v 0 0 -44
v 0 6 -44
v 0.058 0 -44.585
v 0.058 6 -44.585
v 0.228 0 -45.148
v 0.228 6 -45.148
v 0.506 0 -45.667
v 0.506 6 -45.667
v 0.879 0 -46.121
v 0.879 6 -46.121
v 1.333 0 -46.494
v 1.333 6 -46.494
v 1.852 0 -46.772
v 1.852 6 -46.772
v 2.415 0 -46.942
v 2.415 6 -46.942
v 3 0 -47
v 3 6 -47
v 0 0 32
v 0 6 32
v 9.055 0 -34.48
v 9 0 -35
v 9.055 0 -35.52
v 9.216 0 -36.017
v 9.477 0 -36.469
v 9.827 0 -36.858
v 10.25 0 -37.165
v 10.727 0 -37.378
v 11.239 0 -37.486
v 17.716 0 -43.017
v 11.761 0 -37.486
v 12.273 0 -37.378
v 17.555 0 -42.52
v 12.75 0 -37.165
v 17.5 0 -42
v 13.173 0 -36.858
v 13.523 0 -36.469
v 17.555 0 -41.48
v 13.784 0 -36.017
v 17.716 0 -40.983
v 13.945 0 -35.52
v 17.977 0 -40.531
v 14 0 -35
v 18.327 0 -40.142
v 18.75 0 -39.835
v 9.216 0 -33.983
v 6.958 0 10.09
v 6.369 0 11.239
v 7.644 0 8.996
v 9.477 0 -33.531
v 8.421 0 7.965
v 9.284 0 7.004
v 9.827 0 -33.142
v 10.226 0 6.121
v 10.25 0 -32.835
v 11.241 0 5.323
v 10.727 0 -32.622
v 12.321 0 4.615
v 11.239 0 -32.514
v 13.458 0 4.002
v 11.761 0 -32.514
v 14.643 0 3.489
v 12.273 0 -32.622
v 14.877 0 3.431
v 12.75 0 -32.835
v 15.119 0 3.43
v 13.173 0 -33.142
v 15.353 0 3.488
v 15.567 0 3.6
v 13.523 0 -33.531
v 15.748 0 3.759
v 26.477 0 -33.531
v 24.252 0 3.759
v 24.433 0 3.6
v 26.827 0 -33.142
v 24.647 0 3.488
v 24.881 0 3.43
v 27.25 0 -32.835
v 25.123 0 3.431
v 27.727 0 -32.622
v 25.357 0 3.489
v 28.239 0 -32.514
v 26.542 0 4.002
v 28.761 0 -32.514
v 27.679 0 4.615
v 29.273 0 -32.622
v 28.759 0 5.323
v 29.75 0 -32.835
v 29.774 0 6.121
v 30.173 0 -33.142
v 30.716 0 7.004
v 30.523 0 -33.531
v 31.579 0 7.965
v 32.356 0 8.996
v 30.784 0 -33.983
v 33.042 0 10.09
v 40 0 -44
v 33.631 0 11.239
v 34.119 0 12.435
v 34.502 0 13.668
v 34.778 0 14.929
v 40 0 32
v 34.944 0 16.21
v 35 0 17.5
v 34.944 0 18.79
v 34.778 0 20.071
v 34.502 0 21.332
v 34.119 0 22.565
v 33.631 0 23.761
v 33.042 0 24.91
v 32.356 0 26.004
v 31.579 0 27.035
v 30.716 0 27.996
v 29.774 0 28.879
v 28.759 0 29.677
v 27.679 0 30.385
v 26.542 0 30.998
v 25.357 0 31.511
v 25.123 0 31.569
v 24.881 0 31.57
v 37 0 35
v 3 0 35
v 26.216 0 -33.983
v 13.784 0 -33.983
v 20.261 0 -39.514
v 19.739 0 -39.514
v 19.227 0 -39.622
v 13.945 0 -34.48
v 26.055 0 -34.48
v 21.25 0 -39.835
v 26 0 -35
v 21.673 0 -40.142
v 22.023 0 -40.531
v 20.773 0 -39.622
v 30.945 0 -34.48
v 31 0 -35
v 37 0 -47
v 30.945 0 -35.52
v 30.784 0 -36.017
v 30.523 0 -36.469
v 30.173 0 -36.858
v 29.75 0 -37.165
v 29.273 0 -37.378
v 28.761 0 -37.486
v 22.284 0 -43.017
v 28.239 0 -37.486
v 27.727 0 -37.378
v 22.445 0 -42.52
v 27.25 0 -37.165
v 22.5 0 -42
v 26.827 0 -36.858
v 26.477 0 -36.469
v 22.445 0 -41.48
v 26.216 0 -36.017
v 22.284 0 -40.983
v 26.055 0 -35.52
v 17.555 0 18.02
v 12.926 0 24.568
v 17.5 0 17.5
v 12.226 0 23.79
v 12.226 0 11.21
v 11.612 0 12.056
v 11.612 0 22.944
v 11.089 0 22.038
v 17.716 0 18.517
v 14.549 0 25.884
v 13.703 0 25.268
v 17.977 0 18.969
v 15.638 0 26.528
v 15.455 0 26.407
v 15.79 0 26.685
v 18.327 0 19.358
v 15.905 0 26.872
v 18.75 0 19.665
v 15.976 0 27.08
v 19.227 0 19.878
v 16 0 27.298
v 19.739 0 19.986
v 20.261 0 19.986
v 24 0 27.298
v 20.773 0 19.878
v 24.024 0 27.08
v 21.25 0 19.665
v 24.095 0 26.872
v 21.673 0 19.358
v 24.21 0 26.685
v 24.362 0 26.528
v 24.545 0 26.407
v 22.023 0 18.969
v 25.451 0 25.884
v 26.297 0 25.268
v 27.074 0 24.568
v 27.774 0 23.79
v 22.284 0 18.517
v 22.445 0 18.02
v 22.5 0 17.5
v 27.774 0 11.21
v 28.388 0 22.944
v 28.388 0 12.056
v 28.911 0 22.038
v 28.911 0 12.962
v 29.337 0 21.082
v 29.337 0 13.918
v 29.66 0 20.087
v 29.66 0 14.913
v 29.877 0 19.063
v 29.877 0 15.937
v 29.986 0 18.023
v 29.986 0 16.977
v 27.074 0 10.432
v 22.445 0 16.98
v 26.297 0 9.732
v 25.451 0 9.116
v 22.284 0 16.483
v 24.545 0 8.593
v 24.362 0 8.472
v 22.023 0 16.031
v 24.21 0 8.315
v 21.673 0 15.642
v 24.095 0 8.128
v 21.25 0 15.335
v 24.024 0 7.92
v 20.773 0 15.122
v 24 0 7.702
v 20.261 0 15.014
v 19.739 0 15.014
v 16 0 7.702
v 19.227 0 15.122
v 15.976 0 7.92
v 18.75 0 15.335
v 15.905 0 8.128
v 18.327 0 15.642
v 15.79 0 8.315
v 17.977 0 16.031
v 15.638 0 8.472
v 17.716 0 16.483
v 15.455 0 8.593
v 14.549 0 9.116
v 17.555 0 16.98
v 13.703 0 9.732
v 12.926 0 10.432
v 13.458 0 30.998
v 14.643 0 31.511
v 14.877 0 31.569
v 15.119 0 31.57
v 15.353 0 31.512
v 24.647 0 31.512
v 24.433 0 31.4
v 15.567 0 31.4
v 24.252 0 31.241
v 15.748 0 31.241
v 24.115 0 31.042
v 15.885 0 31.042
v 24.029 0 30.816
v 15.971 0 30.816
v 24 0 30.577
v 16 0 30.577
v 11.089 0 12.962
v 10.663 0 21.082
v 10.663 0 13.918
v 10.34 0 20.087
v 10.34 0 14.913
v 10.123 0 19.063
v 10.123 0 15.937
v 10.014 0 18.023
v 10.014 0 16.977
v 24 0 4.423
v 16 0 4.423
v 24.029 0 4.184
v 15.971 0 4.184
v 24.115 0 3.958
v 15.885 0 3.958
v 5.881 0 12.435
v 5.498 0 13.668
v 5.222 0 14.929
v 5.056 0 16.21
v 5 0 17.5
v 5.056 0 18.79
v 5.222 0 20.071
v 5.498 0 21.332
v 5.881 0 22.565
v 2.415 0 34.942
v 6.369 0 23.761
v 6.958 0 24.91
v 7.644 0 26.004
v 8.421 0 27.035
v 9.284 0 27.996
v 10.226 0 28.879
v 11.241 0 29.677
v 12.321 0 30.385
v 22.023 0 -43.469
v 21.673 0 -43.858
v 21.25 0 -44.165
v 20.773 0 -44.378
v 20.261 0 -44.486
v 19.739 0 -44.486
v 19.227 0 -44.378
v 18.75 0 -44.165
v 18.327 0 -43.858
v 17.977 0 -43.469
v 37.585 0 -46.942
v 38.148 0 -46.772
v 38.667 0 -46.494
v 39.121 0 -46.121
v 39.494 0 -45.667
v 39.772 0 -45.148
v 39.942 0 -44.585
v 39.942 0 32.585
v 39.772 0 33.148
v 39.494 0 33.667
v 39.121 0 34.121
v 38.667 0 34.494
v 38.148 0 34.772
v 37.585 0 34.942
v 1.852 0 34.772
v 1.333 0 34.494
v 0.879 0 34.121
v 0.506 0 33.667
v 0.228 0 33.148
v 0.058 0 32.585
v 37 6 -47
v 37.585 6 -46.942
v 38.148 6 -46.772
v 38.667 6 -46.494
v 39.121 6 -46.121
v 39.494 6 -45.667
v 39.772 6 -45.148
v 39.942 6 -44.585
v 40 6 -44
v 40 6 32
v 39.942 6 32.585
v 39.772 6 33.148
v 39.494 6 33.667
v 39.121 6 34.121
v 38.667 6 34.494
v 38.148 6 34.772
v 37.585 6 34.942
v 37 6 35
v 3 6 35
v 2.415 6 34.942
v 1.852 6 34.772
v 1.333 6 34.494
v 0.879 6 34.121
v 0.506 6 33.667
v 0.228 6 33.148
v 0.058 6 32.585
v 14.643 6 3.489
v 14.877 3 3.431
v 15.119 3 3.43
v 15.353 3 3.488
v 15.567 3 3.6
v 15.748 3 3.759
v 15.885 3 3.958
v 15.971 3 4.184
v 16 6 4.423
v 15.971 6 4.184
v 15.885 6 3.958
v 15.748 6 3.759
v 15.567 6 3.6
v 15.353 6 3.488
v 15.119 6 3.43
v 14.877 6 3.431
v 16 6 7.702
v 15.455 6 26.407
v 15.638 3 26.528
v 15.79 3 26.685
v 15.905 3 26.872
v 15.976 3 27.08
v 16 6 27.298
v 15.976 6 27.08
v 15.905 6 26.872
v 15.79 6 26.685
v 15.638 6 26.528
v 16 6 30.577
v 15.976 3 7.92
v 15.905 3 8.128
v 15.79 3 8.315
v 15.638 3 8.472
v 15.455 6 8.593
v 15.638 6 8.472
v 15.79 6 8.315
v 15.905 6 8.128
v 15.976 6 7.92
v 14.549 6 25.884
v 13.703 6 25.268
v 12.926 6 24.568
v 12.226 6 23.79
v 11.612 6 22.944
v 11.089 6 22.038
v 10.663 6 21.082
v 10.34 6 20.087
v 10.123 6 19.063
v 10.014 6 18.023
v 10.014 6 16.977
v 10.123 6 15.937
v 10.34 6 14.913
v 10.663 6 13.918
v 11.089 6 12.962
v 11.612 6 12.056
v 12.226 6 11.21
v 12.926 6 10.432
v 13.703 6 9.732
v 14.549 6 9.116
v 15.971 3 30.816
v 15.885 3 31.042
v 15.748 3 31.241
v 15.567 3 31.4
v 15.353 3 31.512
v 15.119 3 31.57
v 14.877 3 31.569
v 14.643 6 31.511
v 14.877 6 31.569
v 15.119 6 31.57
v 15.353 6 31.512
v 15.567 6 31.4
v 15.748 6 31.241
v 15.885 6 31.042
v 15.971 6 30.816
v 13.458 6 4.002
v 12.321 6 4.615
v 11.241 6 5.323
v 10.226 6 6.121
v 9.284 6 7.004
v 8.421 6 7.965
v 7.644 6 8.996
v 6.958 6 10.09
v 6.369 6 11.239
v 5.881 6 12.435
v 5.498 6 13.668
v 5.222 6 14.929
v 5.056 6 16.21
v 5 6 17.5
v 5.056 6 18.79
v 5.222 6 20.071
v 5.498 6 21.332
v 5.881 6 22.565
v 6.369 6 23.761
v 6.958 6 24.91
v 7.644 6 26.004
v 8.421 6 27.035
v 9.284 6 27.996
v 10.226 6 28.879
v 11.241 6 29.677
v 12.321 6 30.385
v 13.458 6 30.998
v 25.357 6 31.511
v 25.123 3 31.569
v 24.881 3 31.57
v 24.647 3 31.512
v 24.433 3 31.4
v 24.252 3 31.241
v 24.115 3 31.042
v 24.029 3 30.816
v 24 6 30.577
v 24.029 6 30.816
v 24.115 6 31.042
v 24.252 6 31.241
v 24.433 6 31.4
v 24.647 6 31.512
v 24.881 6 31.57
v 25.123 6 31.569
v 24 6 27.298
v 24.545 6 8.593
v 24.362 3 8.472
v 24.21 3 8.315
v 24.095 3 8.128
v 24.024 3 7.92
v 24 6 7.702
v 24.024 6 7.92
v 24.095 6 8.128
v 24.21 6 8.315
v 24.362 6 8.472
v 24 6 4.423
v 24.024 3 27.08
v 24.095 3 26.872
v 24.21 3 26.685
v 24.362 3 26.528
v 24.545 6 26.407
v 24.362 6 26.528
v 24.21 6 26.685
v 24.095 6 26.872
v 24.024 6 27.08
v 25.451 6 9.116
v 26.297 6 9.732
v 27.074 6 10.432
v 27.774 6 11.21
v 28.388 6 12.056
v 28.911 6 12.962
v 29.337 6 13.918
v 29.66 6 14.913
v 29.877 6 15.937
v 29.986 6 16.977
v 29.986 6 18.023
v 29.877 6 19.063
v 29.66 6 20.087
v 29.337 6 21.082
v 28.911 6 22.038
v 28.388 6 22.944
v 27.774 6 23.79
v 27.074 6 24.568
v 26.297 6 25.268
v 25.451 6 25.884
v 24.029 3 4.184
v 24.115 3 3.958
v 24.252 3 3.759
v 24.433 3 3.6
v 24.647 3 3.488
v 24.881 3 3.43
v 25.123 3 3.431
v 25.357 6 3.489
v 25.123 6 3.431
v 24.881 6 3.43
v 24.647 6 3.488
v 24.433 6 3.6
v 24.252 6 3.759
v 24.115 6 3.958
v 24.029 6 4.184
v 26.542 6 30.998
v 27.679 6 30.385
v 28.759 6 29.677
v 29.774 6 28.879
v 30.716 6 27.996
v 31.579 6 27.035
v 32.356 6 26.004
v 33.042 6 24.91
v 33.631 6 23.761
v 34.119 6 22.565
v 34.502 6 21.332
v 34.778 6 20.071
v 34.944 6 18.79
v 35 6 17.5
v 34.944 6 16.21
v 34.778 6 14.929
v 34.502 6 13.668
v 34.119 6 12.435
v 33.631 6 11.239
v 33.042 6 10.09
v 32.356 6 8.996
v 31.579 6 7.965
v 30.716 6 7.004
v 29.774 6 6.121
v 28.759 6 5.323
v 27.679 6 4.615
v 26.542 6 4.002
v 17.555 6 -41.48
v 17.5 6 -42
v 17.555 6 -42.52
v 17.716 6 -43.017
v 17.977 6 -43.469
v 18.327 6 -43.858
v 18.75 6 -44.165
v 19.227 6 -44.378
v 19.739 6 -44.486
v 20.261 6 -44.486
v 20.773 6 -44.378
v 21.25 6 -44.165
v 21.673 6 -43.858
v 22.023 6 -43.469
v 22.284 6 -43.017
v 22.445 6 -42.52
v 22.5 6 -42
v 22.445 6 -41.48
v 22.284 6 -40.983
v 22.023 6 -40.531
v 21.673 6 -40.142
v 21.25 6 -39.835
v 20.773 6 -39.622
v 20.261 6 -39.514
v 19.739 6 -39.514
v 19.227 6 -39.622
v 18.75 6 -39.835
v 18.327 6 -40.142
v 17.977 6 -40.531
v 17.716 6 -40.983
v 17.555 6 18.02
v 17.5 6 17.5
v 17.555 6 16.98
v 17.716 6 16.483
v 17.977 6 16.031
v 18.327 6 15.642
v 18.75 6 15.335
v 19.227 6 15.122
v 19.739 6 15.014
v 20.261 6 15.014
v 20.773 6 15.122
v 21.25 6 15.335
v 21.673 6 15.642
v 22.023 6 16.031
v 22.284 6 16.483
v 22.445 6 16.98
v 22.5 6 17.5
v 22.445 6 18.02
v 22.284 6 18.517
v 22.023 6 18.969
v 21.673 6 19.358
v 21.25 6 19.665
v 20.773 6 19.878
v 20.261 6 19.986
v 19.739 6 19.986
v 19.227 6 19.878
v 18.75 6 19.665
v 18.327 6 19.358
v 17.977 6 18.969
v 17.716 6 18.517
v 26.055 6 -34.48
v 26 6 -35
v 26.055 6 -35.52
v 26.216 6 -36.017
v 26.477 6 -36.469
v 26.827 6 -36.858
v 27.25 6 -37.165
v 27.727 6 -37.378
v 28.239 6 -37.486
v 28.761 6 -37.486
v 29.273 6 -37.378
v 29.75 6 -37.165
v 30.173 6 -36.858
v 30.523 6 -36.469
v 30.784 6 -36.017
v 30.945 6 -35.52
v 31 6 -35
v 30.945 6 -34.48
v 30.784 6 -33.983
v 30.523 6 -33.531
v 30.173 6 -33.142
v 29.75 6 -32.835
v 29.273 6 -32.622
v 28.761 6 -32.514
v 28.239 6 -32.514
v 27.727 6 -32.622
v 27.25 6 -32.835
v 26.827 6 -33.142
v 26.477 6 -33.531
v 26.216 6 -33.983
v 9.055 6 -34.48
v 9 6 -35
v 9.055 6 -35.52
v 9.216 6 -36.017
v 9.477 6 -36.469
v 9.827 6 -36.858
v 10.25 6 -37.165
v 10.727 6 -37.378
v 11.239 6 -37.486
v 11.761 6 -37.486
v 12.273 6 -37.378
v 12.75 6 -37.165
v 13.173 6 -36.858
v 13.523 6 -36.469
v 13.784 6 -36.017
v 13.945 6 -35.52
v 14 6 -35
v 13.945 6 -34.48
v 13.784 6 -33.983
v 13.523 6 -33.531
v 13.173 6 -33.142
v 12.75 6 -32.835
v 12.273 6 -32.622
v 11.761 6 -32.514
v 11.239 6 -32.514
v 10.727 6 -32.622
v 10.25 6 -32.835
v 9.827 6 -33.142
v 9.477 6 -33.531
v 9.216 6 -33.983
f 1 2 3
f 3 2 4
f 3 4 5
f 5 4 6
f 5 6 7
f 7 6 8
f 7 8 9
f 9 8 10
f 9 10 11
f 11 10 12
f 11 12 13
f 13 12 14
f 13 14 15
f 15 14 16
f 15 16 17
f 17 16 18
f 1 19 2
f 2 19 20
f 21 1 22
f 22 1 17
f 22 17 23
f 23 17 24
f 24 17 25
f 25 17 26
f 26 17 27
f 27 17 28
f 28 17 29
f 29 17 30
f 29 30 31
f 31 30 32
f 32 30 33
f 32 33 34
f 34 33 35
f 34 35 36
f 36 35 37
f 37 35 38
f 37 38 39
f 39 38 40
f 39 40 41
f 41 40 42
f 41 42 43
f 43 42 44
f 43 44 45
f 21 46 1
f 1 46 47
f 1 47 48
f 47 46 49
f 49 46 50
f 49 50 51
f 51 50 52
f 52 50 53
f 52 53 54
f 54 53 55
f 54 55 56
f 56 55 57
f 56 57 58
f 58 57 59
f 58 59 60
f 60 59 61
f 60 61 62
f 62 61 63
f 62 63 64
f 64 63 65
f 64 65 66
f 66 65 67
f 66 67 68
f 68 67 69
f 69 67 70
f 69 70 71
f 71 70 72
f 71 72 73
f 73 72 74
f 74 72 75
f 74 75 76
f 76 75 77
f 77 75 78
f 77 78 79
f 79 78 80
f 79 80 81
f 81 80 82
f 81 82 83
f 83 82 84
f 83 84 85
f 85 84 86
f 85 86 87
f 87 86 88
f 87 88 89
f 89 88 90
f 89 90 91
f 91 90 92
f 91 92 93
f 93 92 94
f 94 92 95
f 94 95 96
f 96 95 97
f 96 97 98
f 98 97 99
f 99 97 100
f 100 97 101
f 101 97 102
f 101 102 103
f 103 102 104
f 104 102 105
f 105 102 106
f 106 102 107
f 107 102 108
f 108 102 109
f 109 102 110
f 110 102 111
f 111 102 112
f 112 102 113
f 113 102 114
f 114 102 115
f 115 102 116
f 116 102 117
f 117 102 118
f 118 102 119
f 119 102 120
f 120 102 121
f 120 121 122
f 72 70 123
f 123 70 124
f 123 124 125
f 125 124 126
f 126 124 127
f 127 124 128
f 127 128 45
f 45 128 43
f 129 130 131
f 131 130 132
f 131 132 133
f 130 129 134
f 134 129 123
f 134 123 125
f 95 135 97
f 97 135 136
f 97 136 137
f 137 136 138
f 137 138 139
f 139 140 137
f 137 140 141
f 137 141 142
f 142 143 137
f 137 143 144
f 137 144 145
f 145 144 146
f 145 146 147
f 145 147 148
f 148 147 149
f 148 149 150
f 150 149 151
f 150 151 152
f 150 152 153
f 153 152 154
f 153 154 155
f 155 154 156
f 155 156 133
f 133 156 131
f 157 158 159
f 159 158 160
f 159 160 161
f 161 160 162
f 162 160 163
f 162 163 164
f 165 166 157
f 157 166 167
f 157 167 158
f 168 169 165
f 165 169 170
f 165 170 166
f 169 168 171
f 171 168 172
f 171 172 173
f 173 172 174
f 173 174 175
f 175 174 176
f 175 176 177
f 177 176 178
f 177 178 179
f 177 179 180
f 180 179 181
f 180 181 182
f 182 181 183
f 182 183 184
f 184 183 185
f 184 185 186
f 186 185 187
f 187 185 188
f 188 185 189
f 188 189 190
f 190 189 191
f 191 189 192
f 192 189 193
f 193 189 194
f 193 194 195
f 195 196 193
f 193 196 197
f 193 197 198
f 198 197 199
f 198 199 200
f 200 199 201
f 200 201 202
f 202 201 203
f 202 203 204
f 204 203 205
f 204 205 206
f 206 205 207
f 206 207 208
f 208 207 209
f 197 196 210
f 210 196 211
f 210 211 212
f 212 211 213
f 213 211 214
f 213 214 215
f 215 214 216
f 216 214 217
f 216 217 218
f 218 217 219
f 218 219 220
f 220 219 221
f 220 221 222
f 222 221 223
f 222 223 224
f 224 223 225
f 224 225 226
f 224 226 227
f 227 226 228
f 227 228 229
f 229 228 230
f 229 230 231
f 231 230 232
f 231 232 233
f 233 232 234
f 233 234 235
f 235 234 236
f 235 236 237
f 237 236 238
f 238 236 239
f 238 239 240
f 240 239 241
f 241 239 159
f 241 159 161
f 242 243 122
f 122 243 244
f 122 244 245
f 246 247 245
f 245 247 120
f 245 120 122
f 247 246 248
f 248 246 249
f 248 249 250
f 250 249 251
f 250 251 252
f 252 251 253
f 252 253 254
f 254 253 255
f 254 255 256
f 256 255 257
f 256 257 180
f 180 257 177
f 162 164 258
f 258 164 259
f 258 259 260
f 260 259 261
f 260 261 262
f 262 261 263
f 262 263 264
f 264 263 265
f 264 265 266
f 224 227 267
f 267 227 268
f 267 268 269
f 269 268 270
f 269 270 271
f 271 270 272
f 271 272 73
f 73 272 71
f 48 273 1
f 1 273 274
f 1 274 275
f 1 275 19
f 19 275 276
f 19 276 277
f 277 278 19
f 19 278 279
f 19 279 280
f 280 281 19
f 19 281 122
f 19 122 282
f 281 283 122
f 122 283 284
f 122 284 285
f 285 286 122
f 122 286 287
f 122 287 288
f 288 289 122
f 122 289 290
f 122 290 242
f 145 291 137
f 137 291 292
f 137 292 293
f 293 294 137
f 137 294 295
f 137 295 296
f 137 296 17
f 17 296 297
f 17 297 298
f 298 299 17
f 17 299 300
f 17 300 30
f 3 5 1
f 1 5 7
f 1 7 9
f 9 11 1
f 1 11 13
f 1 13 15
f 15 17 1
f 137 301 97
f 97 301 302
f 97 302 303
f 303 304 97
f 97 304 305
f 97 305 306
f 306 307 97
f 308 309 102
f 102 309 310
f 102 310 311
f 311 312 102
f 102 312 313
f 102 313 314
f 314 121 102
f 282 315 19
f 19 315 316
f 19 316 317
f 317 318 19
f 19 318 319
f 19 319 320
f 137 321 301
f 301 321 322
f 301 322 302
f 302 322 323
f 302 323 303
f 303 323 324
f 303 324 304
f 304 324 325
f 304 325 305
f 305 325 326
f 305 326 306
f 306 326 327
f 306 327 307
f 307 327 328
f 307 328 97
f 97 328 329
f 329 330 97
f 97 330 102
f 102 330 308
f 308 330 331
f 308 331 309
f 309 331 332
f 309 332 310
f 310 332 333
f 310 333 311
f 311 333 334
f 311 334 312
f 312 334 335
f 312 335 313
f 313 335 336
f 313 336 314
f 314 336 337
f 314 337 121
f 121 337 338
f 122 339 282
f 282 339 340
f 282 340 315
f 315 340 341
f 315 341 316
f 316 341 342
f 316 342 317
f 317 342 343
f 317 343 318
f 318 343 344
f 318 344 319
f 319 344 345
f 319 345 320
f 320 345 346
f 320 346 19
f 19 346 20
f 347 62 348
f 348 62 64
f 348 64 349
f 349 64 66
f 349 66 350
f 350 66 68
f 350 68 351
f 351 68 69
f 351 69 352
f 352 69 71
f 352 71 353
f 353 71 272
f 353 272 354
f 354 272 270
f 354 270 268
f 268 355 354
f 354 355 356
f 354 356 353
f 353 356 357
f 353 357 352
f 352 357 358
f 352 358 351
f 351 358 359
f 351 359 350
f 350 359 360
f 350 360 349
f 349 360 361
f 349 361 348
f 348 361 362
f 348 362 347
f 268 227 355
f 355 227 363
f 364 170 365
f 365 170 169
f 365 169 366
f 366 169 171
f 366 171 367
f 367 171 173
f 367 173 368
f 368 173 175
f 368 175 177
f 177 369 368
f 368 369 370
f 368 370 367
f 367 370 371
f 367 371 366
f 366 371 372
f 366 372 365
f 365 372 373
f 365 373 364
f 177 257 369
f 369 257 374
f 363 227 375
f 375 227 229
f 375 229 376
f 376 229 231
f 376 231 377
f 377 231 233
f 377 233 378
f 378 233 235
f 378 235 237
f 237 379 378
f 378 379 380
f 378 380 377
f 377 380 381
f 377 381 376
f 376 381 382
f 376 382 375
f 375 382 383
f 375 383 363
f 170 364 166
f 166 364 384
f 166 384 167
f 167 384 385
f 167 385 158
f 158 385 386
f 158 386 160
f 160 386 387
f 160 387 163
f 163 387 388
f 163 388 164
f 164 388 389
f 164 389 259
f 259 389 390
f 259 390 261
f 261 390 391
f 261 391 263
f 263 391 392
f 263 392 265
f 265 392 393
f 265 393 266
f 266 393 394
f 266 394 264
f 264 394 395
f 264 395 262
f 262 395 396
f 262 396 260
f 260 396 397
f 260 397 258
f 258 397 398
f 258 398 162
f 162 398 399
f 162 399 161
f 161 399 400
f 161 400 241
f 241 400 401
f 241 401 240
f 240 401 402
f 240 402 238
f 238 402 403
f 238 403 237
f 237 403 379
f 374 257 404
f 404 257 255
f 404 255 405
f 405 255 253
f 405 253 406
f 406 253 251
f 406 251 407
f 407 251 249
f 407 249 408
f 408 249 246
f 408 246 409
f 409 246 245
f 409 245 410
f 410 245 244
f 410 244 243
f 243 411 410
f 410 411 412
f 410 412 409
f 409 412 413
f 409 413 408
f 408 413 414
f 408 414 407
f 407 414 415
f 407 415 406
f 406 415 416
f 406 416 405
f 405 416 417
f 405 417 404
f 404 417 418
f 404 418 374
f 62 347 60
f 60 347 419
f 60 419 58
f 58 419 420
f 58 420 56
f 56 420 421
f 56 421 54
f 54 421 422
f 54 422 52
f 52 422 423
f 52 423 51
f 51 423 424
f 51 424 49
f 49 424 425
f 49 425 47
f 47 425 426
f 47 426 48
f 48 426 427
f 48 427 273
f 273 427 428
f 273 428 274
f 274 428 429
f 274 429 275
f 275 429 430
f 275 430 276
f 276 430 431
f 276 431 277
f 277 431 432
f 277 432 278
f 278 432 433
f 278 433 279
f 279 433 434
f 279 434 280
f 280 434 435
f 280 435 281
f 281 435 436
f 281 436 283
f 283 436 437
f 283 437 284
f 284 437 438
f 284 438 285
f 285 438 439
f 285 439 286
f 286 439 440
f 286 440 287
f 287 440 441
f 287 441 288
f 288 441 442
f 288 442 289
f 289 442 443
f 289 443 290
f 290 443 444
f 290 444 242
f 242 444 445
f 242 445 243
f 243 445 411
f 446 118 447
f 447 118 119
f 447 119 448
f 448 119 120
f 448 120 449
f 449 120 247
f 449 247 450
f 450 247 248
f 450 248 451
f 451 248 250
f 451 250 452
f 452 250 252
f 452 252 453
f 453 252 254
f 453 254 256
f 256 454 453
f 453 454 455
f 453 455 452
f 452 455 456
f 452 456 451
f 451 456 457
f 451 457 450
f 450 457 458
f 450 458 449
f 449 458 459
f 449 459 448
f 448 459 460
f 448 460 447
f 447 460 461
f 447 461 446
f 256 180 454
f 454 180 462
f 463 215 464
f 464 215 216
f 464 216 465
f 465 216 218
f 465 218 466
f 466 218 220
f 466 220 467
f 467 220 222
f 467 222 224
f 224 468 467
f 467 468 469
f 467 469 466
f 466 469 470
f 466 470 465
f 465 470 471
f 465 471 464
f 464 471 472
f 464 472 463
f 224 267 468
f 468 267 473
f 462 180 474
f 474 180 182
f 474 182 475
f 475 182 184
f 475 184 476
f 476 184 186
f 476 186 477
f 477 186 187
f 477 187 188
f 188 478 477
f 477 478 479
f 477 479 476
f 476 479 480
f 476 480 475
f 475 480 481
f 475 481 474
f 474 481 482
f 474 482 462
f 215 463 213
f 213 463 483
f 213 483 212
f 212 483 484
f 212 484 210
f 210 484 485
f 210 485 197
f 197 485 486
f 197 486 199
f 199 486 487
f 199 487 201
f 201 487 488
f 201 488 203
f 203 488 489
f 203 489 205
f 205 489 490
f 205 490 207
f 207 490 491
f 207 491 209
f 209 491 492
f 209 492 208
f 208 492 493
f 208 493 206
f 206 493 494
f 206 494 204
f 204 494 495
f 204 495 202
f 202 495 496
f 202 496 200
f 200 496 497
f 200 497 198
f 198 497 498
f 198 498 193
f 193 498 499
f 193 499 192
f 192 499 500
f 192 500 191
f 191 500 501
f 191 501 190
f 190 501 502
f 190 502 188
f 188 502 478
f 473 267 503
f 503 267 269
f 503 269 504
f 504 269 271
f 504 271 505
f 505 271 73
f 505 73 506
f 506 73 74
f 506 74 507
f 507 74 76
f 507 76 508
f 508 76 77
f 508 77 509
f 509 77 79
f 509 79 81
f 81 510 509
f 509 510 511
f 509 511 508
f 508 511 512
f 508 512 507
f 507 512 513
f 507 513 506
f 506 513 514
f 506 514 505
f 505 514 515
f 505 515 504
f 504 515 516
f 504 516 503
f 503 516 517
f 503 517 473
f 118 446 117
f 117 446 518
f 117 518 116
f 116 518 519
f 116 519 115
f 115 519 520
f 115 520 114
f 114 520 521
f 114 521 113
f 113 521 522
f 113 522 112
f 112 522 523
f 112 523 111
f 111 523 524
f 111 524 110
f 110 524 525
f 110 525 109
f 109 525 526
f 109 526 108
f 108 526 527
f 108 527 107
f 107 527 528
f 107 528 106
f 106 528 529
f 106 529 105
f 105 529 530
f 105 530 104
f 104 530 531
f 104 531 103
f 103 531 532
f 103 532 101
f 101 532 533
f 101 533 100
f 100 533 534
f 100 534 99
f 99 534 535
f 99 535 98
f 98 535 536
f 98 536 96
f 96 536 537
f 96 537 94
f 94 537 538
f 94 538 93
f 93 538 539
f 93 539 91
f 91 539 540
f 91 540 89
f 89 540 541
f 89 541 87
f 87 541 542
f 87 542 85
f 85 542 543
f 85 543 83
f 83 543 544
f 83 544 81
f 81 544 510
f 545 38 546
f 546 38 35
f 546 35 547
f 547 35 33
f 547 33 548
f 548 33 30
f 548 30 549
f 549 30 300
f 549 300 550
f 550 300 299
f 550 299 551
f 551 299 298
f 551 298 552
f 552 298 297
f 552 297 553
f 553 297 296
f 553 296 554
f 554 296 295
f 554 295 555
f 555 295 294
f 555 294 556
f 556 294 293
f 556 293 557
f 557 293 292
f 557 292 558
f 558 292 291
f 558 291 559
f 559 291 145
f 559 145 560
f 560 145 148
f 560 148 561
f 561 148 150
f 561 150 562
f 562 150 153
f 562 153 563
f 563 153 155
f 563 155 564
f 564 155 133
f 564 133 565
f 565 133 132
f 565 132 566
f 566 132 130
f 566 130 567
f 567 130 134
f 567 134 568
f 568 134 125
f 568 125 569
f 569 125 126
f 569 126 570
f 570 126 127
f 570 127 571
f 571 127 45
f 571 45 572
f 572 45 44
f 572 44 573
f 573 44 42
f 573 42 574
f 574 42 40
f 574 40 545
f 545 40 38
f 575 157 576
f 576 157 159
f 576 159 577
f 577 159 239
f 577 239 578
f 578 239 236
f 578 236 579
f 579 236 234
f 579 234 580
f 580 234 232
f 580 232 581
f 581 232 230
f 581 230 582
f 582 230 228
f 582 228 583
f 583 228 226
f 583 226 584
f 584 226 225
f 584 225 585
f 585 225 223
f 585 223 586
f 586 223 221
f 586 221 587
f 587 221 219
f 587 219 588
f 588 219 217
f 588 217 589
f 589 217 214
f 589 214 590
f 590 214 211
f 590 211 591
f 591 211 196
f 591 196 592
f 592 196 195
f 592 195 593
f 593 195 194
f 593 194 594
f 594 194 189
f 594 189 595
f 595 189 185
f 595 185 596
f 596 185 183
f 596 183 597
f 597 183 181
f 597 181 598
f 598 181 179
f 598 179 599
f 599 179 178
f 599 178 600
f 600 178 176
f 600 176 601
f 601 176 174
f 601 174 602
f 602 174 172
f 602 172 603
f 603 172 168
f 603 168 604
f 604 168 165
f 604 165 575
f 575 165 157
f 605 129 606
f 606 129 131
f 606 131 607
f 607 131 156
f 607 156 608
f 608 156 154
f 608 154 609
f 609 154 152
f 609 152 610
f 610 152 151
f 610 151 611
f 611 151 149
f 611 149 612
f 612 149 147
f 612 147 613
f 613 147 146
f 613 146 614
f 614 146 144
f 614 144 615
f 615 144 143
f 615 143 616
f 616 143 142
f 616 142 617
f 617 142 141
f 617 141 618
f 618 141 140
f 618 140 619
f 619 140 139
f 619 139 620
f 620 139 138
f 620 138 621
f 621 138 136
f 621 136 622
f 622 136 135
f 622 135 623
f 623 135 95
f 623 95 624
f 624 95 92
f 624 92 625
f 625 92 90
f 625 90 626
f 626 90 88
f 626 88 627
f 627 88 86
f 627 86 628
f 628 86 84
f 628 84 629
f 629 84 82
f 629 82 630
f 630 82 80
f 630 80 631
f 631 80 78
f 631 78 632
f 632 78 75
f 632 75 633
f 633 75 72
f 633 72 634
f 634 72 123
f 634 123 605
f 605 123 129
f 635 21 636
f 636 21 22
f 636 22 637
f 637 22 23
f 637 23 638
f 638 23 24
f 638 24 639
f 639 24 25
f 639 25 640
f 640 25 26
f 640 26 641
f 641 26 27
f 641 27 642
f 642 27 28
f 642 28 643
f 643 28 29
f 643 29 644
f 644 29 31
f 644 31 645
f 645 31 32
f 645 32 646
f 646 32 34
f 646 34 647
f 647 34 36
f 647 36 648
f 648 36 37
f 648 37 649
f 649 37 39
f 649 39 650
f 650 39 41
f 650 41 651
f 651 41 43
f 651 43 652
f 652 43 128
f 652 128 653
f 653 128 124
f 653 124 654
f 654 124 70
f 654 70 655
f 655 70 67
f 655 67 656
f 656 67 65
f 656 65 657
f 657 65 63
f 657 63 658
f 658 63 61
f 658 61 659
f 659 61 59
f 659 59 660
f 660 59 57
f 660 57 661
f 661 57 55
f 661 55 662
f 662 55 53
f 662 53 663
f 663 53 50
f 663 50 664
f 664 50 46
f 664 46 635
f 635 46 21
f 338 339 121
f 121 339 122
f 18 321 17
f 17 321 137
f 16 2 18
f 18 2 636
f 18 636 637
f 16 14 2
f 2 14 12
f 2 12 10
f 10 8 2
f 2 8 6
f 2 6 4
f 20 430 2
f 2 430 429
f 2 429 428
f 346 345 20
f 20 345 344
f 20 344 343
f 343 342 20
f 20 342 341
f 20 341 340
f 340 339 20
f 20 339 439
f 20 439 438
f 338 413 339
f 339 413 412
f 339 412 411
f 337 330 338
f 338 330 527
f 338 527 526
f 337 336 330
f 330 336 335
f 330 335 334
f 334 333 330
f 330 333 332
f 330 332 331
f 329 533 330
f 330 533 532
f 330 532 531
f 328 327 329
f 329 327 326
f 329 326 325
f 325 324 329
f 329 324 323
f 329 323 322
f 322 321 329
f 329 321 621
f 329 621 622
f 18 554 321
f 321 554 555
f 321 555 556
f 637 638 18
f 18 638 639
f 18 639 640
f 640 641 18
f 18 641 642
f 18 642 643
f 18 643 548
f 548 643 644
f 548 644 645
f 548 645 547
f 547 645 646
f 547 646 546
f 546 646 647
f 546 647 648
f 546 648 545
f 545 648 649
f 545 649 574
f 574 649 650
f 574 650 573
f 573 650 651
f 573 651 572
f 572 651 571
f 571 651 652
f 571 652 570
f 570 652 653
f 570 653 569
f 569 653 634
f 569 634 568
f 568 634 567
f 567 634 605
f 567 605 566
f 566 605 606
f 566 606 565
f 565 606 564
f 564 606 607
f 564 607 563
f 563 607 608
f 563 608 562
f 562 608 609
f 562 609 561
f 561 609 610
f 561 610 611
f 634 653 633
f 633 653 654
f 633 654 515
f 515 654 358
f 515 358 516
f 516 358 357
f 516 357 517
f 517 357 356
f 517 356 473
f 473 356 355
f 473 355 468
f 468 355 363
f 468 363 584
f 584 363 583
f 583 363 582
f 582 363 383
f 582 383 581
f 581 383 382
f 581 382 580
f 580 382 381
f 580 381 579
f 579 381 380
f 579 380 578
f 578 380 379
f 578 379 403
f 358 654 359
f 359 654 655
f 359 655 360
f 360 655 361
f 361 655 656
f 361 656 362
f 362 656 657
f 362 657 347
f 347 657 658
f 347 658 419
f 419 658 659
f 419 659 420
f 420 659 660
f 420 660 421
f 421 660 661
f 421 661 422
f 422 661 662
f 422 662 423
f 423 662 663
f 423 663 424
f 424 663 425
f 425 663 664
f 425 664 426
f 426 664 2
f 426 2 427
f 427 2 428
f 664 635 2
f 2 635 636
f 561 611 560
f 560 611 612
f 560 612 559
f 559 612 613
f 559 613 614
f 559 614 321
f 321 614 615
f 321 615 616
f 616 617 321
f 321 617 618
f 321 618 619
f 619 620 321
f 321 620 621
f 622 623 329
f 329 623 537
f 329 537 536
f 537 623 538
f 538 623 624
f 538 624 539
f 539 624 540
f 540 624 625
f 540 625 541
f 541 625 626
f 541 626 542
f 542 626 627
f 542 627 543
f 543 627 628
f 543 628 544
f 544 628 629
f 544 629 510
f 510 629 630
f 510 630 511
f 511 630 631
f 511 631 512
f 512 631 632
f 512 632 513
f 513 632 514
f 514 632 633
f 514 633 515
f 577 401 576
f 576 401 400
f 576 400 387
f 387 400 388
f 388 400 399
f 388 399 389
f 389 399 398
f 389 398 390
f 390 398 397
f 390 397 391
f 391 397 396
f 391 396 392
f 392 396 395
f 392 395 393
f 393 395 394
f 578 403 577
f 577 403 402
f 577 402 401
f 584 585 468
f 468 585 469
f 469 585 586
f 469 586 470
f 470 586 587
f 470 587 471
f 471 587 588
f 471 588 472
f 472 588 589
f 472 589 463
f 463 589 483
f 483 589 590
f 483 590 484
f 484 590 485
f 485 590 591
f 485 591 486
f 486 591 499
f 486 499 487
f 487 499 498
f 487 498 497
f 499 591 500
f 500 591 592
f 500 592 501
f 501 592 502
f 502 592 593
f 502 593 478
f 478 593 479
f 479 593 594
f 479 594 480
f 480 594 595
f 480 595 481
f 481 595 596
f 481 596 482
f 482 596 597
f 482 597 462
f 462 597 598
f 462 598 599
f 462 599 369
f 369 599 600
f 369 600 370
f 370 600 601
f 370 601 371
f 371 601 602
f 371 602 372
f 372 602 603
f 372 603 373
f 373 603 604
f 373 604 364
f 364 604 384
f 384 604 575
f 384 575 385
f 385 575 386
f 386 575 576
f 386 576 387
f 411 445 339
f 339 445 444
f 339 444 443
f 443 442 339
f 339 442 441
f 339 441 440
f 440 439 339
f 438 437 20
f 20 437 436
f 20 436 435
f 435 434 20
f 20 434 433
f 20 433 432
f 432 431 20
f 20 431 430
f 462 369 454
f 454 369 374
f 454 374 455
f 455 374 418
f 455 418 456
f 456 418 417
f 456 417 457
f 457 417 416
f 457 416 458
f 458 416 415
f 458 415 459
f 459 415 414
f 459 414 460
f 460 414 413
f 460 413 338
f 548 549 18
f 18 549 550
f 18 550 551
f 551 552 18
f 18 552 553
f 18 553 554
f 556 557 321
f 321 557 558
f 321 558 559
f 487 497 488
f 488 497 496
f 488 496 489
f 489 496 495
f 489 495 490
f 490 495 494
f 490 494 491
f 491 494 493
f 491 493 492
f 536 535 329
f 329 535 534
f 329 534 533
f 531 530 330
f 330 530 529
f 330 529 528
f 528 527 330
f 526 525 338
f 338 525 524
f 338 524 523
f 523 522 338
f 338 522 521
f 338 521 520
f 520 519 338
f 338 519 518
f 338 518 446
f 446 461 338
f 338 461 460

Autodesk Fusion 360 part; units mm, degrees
sketch "Skizze1" plane through (0, 0, 0) normal (0, 1, 0) x (1, 0, 0)
  line L0 (0, 0) -> (40, 0)
  line L1 (40, 0) -> (40, 47)
  line L2 (40, 47) -> (0, 47)
  line L3 (0, 47) -> (0, 0)
  circle A0 centre (20, 42) radius 2.5
  circle A1 centre (28.5, 35) radius 2.5
  circle A2 centre (11.5, 35) radius 2.5
  line L4 (0, 0) -> (40, 0)
  line L5 (40, 0) -> (40, -35)
  line L6 (40, -35) -> (0, -35)
  line L7 (0, -35) -> (0, 0)
  circle A3 centre (20, -17.5) radius 15
  circle A4 centre (20, -17.5) radius 10
  line L8 (16, -3.0432) -> (16, -8.3348)
  line L9 (24, -3.0432) -> (24, -8.3348)
  line L10 (16, -26.6652) -> (16, -31.9568)
  line L11 (24, -26.6652) -> (24, -31.9568)
  circle A5 centre (20, -17.5) radius 2.5
  dimension "d1" = 40
  dimension "d2" = 47
  dimension "d3" = 5
  dimension "d4" = 5
  dimension "d5" = 5
  dimension "d6" = 5
  dimension "d7" = 20
  dimension "d8" = 17
  dimension "d9" = 11.5
  dimension "d11" = 7
  dimension "d12" = 30
  dimension "d13" = 20
  dimension "d14" = 17.5
  dimension "d15" = 35
  dimension "d16" = 8
  dimension "d17" = 4
  dimension "d18" = 8
  dimension "d19" = 4
  dimension "d28" = 5
extrude "Extrusion1" add sketch "Skizze1" along normal blind 6 contours L0 L1 L2 L3 L4 | L0 L4 L5 L6 L7 | A3 A4 L8 L9 | A3 A4 L10 L11 | A4
fillet "Abrundung1" radius 1 4 edges at (24, 3, 3.0432) (24, 3, 26.6652) (24, 3, 8.3348) (24, 3, 31.9568)
fillet "Abrundung1" radius 1 4 edges at (16, 3, 31.9568) (16, 3, 8.3348) (16, 3, 26.6652) (16, 3, 3.0432)
fillet "Abrundung1" radius 3 4 edges at (0, 3, 35) (40, 3, 35) (40, 3, -47) (0, 3, -47)
sketch "Skizze2" plane through (0, 6, 0) normal (0, 1, 0) x (-1, 0, 0)
  arc A0 (-3, -47) -> (0, -44) centre (-3, -44) ccw
  line L0 (0, -44) -> (0, 32)
  arc A1 (0, 32) -> (-3, 35) centre (-3, 32) ccw
  line L1 (-3, 35) -> (-37, 35)
  arc A2 (-37, 35) -> (-40, 32) centre (-37, 32) ccw
  line L2 (-40, 32) -> (-40, -44)
  arc A3 (-40, -44) -> (-37, -47) centre (-37, -44) ccw
  line L3 (-37, -47) -> (-3, -47)
  circle A4 centre (-11.5, -35) radius 2.5
  circle A5 centre (-28.5, -35) radius 2.5
  circle A6 centre (-20, 17.5) radius 2.5
  arc A7 (-14.6429, 3.4893) -> (-14.6429, 31.5107) centre (-20, 17.5) ccw
  arc A8 (-16, 4.4233) -> (-14.6429, 3.4893) centre (-15, 4.4233) ccw
  line L4 (-16, 4.4233) -> (-16, 7.702)
  arc A9 (-15.4545, 8.5928) -> (-16, 7.702) centre (-15, 7.702) ccw
  arc A10 (-15.4545, 8.5928) -> (-15.4545, 26.4072) centre (-20, 17.5) ccw
  arc A11 (-16, 27.298) -> (-15.4545, 26.4072) centre (-15, 27.298) ccw
  line L5 (-16, 27.298) -> (-16, 30.5767)
  arc A12 (-14.6429, 31.5107) -> (-16, 30.5767) centre (-15, 30.5767) ccw
  circle A13 centre (-20, -42) radius 2.5
  line L6 (-24, 30.5767) -> (-24, 27.298)
  arc A14 (-24.5455, 26.4072) -> (-24, 27.298) centre (-25, 27.298) ccw
  arc A15 (-24.5455, 26.4072) -> (-24.5455, 8.5928) centre (-20, 17.5) ccw
  arc A16 (-24, 7.702) -> (-24.5455, 8.5928) centre (-25, 7.702) ccw
  line L7 (-24, 7.702) -> (-24, 4.4233)
  arc A17 (-25.3571, 3.4893) -> (-24, 4.4233) centre (-25, 4.4233) ccw
  arc A18 (-25.3571, 31.5107) -> (-25.3571, 3.4893) centre (-20, 17.5) ccw
  arc A19 (-24, 30.5767) -> (-25.3571, 31.5107) centre (-25, 30.5767) ccw
